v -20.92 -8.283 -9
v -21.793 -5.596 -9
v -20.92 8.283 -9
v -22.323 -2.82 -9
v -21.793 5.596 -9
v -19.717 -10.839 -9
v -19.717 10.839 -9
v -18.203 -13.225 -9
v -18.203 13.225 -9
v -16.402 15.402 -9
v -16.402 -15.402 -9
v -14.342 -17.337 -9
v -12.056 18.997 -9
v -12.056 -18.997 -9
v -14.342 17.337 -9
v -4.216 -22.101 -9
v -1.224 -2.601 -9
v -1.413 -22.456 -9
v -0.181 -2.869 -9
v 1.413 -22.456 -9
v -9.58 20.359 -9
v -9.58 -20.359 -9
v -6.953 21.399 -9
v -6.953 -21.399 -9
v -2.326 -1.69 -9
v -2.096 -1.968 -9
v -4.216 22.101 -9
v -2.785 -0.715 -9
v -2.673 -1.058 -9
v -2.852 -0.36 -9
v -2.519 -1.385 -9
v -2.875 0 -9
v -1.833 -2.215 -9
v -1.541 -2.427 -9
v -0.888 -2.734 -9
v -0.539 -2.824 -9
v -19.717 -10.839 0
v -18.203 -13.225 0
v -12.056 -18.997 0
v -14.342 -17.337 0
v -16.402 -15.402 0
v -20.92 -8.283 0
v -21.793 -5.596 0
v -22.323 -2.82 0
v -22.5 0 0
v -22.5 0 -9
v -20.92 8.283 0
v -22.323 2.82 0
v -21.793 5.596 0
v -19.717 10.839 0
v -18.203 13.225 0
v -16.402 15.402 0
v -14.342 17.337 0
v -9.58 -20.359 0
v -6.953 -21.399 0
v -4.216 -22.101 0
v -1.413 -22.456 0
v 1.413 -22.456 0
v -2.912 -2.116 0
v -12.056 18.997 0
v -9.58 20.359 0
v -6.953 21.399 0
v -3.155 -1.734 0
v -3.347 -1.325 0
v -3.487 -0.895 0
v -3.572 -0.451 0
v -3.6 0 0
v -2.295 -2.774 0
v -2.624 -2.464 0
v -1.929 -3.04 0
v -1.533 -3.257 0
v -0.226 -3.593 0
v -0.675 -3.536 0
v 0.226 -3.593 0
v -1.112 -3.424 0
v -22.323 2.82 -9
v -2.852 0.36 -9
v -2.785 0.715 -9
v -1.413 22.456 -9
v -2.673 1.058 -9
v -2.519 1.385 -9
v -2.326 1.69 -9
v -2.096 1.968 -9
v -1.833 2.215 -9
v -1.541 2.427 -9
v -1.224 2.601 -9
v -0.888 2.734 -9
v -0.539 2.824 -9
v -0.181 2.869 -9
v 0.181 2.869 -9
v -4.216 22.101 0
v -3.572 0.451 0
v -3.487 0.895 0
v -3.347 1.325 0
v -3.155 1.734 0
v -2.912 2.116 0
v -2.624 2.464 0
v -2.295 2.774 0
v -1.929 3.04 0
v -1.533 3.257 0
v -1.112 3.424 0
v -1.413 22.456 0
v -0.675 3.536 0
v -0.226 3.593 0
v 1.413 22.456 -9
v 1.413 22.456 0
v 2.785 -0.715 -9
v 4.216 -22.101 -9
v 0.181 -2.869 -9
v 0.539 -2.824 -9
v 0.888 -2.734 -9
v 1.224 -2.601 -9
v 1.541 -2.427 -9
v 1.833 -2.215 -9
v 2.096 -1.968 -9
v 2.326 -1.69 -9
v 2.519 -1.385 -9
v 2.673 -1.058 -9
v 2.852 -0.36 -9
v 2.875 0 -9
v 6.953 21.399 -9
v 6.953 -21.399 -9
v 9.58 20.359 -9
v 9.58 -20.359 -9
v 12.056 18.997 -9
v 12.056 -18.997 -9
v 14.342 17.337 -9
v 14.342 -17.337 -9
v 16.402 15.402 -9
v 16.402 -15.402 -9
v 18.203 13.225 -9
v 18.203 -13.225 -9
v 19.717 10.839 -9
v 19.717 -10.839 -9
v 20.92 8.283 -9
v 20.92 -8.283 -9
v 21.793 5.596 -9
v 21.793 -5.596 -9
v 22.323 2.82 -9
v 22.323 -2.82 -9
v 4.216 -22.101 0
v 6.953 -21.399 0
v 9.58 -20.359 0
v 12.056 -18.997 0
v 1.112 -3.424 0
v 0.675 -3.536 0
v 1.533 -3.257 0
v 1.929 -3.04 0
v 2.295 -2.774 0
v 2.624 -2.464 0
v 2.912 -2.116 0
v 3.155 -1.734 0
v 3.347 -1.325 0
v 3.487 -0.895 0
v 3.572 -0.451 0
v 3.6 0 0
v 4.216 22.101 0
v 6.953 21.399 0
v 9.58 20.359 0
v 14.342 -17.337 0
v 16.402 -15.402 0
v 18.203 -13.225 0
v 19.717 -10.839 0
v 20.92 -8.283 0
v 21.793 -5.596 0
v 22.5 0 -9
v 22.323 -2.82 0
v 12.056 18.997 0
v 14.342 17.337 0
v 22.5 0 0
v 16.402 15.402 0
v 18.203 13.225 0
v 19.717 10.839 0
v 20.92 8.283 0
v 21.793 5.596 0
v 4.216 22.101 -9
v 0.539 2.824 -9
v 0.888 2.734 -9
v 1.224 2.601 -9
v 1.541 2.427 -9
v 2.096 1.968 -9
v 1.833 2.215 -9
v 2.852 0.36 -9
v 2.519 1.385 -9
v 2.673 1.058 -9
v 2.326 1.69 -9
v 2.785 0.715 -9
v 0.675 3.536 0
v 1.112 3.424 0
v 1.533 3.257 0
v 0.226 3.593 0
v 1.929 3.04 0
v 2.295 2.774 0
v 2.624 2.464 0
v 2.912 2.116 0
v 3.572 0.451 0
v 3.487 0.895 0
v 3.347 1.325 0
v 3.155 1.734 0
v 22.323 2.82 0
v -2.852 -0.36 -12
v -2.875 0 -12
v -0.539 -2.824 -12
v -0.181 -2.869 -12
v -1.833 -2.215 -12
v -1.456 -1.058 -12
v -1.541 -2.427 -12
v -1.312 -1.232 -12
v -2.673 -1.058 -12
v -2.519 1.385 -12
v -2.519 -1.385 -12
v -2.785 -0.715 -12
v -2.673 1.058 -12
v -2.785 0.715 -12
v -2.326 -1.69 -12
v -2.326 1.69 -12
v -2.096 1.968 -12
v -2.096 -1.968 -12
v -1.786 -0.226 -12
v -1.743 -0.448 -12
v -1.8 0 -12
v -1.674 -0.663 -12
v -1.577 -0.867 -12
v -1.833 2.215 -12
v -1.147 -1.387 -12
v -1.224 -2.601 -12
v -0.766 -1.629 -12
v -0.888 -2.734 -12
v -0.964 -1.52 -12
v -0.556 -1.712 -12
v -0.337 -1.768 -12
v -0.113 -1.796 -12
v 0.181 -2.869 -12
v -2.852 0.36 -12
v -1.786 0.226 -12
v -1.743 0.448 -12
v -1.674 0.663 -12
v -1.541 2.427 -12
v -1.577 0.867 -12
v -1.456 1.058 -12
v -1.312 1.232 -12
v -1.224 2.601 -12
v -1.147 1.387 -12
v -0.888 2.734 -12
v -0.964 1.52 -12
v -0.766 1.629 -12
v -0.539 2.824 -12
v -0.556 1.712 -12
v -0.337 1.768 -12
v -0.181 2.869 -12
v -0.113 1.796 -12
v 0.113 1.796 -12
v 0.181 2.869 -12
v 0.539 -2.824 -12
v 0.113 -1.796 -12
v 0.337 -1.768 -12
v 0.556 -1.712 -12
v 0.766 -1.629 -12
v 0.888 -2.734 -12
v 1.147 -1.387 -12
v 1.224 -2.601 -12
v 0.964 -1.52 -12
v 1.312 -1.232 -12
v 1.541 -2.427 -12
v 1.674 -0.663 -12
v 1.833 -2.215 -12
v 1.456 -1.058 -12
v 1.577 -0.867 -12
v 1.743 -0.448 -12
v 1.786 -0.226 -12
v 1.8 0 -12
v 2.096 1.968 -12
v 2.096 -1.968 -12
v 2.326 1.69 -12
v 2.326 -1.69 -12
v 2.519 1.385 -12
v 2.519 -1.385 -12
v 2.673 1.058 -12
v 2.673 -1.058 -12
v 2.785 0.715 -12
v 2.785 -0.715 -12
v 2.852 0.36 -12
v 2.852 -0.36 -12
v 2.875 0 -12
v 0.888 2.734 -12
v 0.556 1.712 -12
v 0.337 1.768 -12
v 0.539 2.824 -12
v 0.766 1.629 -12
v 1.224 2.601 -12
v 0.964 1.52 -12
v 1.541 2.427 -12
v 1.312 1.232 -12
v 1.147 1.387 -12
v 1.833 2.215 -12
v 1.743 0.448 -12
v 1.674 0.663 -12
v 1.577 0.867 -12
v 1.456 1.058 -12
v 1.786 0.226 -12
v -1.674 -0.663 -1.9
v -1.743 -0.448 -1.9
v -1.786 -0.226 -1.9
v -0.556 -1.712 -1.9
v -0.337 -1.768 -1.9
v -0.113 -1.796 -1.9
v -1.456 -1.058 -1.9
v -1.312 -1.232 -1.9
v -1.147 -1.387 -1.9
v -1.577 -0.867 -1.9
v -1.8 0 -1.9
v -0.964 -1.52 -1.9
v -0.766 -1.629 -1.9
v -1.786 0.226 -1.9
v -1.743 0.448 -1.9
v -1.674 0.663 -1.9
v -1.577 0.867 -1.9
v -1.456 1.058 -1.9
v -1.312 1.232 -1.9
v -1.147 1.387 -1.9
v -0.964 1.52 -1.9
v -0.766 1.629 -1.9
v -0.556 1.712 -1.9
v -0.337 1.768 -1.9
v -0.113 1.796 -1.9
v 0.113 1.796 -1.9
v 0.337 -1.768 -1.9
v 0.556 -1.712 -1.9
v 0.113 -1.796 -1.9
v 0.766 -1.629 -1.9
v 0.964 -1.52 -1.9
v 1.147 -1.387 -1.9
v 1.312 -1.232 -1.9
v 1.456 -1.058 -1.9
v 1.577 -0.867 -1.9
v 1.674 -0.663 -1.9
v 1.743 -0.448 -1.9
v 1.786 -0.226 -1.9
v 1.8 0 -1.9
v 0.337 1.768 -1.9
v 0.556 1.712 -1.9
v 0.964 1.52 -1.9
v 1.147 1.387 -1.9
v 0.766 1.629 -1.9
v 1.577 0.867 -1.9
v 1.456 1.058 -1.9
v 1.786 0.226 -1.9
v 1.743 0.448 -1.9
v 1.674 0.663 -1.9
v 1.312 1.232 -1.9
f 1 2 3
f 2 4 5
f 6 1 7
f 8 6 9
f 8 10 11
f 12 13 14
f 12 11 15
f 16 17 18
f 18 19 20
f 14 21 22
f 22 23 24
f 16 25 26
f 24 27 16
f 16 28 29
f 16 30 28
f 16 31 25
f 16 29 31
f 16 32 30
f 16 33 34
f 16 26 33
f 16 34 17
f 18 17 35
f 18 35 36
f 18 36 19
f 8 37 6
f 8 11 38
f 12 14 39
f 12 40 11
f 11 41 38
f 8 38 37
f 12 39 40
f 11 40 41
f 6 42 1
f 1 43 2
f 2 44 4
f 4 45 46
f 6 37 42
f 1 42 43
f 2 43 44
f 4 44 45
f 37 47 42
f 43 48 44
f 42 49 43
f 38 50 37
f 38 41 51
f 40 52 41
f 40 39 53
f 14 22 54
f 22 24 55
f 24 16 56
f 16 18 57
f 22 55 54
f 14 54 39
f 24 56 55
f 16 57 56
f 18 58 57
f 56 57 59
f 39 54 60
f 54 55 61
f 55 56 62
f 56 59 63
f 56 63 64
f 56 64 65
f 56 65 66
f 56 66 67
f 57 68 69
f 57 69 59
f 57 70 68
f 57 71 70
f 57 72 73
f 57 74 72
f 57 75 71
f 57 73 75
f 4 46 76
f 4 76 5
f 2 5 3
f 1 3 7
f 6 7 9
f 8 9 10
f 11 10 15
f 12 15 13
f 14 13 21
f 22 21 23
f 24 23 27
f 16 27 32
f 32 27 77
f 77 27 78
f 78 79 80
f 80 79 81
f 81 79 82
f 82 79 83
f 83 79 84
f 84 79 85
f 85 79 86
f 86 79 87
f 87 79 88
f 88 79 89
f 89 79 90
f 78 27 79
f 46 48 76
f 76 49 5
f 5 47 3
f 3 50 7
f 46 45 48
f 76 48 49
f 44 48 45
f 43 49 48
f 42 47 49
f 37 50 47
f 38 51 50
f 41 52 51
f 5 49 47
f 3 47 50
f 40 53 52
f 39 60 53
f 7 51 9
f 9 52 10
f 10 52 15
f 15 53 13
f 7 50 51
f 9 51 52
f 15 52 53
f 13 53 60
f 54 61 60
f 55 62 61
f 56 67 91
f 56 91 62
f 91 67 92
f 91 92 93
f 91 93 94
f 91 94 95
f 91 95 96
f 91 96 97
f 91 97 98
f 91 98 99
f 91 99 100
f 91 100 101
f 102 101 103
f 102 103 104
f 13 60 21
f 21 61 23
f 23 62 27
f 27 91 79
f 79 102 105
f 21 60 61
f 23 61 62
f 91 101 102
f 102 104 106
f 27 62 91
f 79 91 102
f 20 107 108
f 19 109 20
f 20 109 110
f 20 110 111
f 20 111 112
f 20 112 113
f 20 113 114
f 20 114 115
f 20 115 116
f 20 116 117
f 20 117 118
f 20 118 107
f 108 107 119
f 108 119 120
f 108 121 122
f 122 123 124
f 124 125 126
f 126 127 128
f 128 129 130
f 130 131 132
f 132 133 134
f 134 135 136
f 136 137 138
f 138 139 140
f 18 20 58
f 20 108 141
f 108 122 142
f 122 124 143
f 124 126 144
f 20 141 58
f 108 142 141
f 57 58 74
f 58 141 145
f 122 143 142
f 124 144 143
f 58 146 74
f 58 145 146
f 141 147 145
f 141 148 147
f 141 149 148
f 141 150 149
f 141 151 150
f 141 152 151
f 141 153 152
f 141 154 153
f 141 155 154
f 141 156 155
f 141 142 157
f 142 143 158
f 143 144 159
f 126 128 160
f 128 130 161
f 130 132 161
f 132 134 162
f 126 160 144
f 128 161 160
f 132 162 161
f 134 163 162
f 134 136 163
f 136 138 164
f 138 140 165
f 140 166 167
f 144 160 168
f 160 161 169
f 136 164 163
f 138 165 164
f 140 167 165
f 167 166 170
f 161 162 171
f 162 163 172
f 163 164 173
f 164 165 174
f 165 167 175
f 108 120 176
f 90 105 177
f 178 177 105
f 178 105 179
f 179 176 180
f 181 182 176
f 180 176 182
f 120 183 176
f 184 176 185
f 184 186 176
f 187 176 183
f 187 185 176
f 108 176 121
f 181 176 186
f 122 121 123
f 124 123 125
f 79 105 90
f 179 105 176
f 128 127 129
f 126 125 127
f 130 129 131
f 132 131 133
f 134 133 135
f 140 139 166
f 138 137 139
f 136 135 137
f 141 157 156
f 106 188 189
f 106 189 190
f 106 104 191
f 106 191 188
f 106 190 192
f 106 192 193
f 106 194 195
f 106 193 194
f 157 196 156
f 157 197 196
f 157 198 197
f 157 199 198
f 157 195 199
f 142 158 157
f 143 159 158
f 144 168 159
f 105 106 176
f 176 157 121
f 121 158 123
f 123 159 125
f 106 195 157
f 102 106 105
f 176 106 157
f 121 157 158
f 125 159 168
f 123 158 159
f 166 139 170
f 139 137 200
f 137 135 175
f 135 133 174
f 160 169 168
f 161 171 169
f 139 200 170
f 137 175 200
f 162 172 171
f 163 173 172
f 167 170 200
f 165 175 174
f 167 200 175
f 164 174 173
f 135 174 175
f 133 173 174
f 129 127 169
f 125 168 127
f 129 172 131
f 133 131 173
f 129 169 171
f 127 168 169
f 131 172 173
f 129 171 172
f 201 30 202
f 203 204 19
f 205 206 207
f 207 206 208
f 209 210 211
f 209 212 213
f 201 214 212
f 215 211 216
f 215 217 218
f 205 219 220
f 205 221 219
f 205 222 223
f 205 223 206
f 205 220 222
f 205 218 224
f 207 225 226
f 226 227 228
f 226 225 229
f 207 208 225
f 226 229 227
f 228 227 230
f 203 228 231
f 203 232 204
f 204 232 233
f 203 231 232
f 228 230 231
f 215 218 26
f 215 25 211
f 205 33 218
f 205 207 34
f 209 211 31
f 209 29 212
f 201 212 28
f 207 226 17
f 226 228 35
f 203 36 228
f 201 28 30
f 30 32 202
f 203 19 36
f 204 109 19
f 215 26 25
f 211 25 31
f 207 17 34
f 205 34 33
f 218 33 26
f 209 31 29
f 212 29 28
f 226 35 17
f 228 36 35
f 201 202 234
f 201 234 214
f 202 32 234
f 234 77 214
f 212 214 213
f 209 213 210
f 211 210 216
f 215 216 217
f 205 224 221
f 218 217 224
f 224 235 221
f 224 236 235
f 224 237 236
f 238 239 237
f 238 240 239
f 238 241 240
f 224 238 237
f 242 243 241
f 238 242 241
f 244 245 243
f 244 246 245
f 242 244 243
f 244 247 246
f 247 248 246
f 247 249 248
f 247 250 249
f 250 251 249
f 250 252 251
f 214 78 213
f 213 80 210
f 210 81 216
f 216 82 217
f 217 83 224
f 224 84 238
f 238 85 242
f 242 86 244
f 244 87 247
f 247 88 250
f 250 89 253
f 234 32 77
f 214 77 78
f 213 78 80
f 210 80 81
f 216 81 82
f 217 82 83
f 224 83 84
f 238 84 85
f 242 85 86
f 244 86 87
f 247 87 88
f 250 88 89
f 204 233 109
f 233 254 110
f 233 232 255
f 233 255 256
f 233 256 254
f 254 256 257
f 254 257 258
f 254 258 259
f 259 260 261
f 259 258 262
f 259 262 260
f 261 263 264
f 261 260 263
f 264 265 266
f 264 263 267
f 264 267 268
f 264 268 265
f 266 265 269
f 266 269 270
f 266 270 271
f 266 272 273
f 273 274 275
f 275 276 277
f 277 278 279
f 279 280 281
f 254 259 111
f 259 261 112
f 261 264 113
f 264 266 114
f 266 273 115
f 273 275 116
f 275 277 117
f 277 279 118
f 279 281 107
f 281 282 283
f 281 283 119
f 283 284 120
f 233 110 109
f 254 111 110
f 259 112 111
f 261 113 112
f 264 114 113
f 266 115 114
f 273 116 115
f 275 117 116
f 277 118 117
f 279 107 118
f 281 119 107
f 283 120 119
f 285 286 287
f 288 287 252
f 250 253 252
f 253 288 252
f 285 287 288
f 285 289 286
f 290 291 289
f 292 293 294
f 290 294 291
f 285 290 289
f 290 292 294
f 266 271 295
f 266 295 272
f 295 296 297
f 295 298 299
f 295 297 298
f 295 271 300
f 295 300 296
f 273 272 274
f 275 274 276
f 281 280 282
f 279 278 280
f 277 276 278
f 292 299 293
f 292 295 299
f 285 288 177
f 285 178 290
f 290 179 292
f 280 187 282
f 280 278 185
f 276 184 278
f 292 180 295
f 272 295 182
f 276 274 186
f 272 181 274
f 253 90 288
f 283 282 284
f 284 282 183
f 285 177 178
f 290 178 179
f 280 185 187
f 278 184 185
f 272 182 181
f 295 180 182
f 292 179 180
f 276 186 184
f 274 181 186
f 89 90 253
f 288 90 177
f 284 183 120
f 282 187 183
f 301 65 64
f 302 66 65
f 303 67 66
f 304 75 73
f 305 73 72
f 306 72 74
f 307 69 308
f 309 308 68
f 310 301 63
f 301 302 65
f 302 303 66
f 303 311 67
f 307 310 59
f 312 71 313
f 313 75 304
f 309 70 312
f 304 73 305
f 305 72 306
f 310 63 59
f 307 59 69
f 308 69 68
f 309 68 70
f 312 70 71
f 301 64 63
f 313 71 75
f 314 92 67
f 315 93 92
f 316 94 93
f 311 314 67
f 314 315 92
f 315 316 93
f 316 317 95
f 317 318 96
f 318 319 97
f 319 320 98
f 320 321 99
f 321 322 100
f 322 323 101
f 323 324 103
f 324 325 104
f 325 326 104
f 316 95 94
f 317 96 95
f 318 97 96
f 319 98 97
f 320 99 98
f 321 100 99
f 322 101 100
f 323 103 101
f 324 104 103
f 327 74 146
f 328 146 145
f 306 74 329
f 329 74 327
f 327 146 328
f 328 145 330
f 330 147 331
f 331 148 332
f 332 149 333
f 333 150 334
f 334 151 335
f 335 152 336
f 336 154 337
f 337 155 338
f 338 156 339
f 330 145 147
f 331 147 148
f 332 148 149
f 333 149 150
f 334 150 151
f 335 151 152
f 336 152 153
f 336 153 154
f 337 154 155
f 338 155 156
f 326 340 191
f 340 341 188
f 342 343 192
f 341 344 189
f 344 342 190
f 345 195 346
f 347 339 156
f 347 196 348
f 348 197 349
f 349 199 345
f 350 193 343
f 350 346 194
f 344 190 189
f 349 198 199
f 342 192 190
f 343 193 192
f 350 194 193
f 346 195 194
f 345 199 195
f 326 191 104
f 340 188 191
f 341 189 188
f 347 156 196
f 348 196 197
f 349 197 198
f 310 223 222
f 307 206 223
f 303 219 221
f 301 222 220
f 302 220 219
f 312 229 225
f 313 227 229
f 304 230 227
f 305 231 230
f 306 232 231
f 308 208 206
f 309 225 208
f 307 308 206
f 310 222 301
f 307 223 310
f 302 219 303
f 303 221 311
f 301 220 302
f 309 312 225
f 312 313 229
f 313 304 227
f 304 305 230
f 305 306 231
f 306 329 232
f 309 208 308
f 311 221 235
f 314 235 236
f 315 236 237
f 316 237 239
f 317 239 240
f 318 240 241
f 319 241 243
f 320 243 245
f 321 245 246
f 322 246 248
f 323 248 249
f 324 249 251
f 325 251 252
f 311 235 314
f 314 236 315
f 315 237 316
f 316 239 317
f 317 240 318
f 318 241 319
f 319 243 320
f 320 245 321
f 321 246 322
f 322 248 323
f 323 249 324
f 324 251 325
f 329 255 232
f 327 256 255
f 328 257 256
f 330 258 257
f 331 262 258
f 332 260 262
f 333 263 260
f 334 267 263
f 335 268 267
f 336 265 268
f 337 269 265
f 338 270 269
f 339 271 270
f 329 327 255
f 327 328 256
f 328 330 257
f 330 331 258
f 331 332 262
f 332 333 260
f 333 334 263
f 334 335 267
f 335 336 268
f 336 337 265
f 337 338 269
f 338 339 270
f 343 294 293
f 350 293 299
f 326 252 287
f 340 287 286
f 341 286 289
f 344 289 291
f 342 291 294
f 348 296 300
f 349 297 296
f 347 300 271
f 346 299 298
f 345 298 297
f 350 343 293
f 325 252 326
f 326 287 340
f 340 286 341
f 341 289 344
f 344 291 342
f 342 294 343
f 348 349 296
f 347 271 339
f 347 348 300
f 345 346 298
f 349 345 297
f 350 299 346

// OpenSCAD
$fn = 50;


difference() {
	union() {
		translate(v = [0, 0, -9.0000000000]) {
			cylinder(h = 9, r = 22.5000000000);
		}
		#translate(v = [0, 0, -12.0000000000]) {
			cylinder(h = 12, r = 2.8750000000);
		}
	}
	union() {
		translate(v = [0, 0, 0]) {
			rotate(a = [0, 0, 0]) {
				difference() {
					union() {
						translate(v = [0, 0, -12.0000000000]) {
							cylinder(h = 12, r = 1.5000000000);
						}
						translate(v = [0, 0, -1.9000000000]) {
							cylinder(h = 1.9000000000, r1 = 1.8000000000, r2 = 3.6000000000);
						}
						translate(v = [0, 0, -12.0000000000]) {
							cylinder(h = 12, r = 1.8000000000);
						}
						translate(v = [0, 0, -12.0000000000]) {
							cylinder(h = 12, r = 1.5000000000);
						}
					}
					union();
				}
			}
		}
	}
}
